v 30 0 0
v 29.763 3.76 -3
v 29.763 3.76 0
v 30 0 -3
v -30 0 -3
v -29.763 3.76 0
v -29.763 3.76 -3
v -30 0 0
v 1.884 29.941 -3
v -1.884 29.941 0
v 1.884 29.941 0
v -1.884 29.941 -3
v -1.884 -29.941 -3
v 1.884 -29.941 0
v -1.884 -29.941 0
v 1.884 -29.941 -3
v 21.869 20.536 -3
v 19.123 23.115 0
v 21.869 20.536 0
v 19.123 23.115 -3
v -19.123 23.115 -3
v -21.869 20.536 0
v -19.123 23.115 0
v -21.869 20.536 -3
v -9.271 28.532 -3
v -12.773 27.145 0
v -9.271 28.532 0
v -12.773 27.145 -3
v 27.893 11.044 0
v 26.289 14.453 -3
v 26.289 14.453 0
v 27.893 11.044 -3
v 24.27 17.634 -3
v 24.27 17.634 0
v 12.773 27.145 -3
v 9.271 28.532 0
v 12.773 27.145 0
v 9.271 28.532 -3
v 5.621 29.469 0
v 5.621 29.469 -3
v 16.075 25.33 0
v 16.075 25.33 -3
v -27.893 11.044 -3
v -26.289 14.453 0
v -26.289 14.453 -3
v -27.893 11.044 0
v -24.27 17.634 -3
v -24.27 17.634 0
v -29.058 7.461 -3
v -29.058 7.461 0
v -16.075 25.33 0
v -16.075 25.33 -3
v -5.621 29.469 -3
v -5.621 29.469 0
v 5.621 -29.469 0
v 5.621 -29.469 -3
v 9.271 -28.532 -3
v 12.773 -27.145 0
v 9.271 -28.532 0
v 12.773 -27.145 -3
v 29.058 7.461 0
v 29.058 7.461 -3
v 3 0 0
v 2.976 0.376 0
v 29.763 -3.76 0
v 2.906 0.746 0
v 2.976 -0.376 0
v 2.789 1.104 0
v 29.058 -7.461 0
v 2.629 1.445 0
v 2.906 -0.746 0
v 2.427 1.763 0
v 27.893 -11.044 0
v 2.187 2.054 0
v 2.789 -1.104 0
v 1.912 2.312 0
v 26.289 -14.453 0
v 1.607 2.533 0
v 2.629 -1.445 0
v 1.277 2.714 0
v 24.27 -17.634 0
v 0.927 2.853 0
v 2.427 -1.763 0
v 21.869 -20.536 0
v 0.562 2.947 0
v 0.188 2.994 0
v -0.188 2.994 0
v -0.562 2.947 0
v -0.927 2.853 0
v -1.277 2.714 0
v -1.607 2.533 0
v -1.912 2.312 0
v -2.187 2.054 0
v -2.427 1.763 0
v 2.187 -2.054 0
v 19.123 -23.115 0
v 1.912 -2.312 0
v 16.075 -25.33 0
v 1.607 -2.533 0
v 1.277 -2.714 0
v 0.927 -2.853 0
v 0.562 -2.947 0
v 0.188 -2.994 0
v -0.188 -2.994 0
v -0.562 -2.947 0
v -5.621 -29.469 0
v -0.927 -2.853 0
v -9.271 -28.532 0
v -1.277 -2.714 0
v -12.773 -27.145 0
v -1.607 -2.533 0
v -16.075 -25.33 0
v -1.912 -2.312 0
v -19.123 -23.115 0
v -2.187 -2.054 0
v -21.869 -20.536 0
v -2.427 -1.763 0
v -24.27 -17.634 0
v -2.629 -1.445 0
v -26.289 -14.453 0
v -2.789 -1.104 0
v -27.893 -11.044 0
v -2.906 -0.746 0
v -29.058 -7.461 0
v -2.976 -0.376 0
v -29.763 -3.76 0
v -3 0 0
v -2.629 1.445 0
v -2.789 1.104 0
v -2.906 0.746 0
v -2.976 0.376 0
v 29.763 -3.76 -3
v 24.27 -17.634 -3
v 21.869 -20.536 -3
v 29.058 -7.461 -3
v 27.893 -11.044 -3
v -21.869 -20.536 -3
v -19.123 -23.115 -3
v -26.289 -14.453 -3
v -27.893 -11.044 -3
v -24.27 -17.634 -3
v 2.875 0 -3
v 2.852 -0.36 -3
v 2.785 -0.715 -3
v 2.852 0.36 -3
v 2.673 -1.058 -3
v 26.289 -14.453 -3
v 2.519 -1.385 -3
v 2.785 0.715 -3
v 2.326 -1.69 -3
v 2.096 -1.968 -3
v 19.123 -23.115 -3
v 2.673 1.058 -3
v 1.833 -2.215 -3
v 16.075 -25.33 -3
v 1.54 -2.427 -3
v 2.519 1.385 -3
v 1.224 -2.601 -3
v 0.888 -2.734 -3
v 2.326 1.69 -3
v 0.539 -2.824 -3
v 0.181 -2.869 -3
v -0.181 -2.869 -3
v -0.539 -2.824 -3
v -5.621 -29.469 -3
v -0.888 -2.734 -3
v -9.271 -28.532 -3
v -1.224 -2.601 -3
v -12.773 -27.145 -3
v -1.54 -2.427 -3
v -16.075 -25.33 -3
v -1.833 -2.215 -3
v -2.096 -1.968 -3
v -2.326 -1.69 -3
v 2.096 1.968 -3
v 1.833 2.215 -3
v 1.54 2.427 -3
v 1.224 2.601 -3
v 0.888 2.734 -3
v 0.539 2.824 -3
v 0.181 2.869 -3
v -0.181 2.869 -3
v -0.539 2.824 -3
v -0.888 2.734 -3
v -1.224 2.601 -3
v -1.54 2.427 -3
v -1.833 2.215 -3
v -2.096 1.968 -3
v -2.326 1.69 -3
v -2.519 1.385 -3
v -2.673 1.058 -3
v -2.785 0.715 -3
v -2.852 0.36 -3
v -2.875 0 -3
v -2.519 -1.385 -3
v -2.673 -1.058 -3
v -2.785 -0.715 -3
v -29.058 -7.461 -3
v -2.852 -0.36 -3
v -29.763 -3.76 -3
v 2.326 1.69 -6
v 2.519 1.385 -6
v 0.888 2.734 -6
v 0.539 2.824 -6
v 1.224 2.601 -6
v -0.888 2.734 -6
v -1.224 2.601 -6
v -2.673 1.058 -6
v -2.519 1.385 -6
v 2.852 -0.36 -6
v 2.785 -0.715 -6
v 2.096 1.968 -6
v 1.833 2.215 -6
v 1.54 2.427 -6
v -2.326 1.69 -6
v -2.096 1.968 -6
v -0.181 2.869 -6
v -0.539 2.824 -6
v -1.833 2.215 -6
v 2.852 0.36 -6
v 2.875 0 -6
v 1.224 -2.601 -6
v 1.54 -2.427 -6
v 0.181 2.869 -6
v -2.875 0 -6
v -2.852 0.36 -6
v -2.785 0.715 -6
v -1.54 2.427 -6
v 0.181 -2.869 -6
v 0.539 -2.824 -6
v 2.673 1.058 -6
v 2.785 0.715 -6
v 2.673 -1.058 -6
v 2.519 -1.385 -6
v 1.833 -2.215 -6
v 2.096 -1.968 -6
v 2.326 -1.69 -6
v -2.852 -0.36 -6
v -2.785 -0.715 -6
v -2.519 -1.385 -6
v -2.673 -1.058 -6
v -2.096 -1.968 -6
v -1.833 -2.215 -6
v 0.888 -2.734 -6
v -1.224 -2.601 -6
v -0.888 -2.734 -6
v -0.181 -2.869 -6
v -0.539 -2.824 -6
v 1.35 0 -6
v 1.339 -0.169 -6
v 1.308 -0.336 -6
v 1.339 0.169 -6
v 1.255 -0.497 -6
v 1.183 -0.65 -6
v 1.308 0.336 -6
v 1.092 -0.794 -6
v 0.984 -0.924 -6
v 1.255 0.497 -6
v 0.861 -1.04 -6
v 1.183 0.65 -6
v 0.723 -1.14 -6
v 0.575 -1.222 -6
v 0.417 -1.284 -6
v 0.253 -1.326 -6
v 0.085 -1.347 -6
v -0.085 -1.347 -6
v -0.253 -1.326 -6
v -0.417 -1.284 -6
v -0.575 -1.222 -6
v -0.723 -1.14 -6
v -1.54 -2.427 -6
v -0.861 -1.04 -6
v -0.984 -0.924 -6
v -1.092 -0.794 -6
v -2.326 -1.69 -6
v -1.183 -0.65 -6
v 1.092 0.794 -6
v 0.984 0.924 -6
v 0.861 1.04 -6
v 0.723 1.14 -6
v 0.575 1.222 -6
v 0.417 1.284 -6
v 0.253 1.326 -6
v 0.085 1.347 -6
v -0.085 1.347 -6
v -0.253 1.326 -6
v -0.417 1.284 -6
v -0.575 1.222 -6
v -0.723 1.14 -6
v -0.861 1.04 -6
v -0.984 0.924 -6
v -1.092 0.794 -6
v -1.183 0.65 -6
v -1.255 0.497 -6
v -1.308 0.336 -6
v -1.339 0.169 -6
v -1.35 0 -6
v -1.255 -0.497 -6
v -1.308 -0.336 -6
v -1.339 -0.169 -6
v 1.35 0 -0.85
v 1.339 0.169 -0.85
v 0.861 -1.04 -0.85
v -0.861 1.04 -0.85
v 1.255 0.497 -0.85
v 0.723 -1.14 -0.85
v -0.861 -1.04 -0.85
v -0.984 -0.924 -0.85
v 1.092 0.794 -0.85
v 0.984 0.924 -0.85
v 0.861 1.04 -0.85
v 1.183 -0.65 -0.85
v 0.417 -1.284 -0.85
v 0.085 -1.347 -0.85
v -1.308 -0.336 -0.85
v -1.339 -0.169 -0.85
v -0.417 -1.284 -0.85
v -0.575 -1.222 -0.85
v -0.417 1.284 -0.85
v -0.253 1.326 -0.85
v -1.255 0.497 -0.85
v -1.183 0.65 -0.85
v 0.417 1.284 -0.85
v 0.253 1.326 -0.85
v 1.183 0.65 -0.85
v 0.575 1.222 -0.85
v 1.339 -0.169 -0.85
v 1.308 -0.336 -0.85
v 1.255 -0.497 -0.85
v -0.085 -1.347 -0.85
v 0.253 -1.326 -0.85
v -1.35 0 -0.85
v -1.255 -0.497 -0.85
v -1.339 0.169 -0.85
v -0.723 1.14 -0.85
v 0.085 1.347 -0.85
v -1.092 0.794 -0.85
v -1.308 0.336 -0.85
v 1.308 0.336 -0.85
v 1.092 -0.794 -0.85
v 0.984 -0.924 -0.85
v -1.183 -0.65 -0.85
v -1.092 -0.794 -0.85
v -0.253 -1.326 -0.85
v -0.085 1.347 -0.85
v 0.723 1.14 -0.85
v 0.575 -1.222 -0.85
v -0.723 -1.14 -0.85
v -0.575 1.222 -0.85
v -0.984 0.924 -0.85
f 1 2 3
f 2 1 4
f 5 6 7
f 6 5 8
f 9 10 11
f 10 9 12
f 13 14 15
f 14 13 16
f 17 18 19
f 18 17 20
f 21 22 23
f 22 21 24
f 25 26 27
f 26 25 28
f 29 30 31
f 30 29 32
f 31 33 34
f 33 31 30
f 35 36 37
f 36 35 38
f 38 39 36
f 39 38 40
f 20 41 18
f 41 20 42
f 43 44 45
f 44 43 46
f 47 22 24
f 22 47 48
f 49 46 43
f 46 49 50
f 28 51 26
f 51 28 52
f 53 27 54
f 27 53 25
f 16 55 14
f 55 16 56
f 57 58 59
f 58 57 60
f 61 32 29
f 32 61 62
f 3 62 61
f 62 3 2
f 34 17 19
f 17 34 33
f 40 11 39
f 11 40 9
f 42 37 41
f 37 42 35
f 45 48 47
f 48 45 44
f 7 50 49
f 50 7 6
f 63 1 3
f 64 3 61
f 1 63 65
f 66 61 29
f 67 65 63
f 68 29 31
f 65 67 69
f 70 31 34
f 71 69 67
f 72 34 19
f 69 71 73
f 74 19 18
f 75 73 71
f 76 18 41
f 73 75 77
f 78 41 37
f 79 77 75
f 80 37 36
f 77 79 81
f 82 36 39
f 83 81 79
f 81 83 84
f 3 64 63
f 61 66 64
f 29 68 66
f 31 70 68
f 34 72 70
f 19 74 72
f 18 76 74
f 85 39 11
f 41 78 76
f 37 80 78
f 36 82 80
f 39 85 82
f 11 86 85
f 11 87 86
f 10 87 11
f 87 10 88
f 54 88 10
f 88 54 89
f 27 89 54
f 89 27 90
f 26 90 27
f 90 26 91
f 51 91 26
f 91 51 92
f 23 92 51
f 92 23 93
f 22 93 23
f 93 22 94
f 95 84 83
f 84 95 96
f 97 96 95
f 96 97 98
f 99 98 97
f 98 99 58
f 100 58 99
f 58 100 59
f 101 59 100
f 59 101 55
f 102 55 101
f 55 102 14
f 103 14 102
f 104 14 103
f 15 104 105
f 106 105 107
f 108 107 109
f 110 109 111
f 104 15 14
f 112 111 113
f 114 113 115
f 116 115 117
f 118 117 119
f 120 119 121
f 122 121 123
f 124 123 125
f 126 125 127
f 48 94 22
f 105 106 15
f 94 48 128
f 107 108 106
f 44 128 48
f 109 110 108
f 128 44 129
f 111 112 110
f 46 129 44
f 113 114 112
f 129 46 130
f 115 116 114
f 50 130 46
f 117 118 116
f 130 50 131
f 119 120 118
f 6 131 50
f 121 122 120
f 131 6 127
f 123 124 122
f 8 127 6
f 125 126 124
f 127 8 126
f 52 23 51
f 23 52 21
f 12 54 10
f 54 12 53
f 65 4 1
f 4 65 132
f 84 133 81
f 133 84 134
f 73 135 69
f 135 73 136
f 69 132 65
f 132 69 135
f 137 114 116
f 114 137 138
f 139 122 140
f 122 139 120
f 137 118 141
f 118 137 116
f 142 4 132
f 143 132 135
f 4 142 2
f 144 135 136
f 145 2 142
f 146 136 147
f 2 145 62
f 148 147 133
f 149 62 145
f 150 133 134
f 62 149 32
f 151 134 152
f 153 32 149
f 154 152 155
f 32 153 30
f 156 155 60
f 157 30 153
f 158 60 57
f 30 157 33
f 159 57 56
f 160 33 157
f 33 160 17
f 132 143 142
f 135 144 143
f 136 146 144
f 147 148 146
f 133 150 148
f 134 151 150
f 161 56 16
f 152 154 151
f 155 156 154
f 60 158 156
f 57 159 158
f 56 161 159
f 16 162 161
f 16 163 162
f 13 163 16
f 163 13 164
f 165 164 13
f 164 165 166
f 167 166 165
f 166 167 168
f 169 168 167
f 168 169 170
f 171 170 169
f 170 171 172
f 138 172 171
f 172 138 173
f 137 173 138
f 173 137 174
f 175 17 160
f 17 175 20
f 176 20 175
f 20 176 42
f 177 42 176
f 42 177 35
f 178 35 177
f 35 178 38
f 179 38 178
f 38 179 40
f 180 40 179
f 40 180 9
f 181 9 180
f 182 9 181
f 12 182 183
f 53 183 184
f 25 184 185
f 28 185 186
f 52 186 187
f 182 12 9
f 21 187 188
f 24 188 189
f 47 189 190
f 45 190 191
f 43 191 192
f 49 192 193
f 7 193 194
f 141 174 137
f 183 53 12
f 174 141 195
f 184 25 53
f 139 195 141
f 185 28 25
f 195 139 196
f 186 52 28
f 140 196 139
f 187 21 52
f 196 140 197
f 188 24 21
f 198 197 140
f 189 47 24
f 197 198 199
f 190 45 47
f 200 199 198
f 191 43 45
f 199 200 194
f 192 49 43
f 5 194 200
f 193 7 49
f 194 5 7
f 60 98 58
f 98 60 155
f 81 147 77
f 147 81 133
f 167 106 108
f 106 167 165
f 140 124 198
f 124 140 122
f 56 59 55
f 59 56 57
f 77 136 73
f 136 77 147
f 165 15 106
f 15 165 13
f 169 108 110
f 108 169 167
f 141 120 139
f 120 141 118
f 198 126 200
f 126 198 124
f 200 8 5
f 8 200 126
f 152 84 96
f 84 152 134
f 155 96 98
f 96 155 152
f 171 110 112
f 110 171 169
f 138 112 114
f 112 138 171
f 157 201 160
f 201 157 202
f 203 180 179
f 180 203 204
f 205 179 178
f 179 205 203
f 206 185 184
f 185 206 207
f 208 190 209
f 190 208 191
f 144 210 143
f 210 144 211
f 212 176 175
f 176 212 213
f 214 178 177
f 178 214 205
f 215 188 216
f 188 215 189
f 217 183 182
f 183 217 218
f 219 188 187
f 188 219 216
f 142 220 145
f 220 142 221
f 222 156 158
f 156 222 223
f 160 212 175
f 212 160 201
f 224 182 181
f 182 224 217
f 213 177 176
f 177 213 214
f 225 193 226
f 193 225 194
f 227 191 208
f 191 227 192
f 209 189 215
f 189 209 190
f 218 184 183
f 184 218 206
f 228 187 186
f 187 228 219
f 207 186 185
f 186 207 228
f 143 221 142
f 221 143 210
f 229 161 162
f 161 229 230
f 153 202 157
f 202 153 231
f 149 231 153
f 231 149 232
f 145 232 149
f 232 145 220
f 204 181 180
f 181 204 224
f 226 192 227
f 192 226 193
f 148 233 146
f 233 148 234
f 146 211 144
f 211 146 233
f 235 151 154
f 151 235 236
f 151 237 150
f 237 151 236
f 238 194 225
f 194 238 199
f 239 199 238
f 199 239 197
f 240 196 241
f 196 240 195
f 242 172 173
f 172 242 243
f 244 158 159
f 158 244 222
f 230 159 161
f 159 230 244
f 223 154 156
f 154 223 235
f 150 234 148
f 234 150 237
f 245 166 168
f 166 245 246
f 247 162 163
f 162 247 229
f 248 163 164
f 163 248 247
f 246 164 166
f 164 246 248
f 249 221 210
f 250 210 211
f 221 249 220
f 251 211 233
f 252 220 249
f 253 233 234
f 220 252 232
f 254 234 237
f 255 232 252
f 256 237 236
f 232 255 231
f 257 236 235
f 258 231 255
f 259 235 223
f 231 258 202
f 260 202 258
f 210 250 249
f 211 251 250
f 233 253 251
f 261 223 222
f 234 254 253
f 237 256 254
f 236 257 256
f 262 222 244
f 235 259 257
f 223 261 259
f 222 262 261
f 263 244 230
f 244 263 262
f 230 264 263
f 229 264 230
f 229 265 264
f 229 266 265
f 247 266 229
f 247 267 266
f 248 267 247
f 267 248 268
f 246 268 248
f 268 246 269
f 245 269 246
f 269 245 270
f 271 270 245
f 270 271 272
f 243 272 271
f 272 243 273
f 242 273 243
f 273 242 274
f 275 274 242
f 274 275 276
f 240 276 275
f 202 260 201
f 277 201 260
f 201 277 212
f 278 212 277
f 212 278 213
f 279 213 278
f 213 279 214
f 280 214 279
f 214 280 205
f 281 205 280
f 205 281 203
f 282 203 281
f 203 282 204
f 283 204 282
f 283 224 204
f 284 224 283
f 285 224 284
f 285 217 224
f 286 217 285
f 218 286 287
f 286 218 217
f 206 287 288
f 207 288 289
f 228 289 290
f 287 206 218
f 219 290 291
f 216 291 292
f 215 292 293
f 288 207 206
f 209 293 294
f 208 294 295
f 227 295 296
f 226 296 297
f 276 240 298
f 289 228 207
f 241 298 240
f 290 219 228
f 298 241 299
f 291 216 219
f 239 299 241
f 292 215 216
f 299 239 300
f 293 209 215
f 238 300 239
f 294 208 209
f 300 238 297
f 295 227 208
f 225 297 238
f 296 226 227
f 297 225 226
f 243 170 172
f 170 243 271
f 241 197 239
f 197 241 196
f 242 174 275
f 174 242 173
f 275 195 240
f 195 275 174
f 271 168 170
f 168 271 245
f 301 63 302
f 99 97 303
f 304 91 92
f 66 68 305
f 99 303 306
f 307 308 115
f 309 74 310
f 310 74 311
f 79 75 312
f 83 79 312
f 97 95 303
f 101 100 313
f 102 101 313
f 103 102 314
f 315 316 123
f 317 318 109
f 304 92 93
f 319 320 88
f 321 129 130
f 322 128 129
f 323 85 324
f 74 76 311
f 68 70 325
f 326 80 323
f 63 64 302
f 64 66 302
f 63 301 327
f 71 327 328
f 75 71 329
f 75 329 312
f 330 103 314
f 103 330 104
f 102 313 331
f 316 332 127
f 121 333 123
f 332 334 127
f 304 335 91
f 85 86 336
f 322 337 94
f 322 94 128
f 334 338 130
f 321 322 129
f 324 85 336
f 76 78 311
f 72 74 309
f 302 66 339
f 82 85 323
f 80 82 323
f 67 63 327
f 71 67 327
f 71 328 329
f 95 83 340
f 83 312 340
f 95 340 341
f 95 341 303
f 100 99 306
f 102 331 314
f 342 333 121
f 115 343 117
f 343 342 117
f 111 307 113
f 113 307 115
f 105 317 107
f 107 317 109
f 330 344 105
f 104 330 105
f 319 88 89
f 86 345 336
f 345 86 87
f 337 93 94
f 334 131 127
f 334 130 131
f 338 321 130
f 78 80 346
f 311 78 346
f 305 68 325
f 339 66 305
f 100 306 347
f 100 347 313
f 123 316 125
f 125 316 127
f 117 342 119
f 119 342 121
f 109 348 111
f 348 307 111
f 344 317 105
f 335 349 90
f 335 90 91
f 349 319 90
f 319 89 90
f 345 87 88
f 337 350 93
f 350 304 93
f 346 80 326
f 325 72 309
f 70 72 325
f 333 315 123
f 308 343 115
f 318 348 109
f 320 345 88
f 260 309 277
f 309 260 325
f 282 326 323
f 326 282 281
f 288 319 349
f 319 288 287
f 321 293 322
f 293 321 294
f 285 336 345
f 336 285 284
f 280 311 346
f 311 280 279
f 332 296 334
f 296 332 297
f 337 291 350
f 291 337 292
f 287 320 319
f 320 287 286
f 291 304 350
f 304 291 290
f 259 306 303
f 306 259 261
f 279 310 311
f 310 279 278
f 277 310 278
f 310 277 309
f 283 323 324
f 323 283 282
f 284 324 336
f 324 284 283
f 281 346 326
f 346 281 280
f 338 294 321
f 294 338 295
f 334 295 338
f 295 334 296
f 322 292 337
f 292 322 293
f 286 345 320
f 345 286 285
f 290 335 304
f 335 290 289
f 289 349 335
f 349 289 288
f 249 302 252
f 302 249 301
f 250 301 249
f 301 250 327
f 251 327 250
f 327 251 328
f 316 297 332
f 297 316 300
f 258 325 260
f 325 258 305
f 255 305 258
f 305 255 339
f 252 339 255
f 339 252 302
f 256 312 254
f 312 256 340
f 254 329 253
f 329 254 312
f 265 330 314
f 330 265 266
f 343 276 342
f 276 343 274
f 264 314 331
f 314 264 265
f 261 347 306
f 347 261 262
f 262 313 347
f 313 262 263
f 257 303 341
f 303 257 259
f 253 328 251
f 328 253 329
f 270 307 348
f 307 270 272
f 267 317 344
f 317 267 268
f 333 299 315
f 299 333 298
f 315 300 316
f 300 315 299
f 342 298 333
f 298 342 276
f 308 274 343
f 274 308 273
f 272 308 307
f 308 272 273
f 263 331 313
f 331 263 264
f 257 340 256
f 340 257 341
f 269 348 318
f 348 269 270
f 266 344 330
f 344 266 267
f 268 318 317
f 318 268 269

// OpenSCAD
$fn = 50;


difference() {
	union() {
		translate(v = [0, 0, -3.0000000000]) {
			cylinder(h = 3, r = 30.0000000000);
		}
		translate(v = [0, 0, -6.0000000000]) {
			cylinder(h = 6, r = 2.8750000000);
		}
	}
	union() {
		translate(v = [0, 0, 0]) {
			rotate(a = [0, 0, 0]) {
				difference() {
					union() {
						translate(v = [0, 0, -6.0000000000]) {
							cylinder(h = 6, r = 1.0000000000);
						}
						translate(v = [0, 0, -0.8500000000]) {
							cylinder(h = 0.8500000000, r1 = 1.3500000000, r2 = 3.0000000000);
						}
						translate(v = [0, 0, -6.0000000000]) {
							cylinder(h = 6, r = 1.3500000000);
						}
						translate(v = [0, 0, -6.0000000000]) {
							cylinder(h = 6, r = 1.0000000000);
						}
					}
					union();
				}
			}
		}
	}
}
